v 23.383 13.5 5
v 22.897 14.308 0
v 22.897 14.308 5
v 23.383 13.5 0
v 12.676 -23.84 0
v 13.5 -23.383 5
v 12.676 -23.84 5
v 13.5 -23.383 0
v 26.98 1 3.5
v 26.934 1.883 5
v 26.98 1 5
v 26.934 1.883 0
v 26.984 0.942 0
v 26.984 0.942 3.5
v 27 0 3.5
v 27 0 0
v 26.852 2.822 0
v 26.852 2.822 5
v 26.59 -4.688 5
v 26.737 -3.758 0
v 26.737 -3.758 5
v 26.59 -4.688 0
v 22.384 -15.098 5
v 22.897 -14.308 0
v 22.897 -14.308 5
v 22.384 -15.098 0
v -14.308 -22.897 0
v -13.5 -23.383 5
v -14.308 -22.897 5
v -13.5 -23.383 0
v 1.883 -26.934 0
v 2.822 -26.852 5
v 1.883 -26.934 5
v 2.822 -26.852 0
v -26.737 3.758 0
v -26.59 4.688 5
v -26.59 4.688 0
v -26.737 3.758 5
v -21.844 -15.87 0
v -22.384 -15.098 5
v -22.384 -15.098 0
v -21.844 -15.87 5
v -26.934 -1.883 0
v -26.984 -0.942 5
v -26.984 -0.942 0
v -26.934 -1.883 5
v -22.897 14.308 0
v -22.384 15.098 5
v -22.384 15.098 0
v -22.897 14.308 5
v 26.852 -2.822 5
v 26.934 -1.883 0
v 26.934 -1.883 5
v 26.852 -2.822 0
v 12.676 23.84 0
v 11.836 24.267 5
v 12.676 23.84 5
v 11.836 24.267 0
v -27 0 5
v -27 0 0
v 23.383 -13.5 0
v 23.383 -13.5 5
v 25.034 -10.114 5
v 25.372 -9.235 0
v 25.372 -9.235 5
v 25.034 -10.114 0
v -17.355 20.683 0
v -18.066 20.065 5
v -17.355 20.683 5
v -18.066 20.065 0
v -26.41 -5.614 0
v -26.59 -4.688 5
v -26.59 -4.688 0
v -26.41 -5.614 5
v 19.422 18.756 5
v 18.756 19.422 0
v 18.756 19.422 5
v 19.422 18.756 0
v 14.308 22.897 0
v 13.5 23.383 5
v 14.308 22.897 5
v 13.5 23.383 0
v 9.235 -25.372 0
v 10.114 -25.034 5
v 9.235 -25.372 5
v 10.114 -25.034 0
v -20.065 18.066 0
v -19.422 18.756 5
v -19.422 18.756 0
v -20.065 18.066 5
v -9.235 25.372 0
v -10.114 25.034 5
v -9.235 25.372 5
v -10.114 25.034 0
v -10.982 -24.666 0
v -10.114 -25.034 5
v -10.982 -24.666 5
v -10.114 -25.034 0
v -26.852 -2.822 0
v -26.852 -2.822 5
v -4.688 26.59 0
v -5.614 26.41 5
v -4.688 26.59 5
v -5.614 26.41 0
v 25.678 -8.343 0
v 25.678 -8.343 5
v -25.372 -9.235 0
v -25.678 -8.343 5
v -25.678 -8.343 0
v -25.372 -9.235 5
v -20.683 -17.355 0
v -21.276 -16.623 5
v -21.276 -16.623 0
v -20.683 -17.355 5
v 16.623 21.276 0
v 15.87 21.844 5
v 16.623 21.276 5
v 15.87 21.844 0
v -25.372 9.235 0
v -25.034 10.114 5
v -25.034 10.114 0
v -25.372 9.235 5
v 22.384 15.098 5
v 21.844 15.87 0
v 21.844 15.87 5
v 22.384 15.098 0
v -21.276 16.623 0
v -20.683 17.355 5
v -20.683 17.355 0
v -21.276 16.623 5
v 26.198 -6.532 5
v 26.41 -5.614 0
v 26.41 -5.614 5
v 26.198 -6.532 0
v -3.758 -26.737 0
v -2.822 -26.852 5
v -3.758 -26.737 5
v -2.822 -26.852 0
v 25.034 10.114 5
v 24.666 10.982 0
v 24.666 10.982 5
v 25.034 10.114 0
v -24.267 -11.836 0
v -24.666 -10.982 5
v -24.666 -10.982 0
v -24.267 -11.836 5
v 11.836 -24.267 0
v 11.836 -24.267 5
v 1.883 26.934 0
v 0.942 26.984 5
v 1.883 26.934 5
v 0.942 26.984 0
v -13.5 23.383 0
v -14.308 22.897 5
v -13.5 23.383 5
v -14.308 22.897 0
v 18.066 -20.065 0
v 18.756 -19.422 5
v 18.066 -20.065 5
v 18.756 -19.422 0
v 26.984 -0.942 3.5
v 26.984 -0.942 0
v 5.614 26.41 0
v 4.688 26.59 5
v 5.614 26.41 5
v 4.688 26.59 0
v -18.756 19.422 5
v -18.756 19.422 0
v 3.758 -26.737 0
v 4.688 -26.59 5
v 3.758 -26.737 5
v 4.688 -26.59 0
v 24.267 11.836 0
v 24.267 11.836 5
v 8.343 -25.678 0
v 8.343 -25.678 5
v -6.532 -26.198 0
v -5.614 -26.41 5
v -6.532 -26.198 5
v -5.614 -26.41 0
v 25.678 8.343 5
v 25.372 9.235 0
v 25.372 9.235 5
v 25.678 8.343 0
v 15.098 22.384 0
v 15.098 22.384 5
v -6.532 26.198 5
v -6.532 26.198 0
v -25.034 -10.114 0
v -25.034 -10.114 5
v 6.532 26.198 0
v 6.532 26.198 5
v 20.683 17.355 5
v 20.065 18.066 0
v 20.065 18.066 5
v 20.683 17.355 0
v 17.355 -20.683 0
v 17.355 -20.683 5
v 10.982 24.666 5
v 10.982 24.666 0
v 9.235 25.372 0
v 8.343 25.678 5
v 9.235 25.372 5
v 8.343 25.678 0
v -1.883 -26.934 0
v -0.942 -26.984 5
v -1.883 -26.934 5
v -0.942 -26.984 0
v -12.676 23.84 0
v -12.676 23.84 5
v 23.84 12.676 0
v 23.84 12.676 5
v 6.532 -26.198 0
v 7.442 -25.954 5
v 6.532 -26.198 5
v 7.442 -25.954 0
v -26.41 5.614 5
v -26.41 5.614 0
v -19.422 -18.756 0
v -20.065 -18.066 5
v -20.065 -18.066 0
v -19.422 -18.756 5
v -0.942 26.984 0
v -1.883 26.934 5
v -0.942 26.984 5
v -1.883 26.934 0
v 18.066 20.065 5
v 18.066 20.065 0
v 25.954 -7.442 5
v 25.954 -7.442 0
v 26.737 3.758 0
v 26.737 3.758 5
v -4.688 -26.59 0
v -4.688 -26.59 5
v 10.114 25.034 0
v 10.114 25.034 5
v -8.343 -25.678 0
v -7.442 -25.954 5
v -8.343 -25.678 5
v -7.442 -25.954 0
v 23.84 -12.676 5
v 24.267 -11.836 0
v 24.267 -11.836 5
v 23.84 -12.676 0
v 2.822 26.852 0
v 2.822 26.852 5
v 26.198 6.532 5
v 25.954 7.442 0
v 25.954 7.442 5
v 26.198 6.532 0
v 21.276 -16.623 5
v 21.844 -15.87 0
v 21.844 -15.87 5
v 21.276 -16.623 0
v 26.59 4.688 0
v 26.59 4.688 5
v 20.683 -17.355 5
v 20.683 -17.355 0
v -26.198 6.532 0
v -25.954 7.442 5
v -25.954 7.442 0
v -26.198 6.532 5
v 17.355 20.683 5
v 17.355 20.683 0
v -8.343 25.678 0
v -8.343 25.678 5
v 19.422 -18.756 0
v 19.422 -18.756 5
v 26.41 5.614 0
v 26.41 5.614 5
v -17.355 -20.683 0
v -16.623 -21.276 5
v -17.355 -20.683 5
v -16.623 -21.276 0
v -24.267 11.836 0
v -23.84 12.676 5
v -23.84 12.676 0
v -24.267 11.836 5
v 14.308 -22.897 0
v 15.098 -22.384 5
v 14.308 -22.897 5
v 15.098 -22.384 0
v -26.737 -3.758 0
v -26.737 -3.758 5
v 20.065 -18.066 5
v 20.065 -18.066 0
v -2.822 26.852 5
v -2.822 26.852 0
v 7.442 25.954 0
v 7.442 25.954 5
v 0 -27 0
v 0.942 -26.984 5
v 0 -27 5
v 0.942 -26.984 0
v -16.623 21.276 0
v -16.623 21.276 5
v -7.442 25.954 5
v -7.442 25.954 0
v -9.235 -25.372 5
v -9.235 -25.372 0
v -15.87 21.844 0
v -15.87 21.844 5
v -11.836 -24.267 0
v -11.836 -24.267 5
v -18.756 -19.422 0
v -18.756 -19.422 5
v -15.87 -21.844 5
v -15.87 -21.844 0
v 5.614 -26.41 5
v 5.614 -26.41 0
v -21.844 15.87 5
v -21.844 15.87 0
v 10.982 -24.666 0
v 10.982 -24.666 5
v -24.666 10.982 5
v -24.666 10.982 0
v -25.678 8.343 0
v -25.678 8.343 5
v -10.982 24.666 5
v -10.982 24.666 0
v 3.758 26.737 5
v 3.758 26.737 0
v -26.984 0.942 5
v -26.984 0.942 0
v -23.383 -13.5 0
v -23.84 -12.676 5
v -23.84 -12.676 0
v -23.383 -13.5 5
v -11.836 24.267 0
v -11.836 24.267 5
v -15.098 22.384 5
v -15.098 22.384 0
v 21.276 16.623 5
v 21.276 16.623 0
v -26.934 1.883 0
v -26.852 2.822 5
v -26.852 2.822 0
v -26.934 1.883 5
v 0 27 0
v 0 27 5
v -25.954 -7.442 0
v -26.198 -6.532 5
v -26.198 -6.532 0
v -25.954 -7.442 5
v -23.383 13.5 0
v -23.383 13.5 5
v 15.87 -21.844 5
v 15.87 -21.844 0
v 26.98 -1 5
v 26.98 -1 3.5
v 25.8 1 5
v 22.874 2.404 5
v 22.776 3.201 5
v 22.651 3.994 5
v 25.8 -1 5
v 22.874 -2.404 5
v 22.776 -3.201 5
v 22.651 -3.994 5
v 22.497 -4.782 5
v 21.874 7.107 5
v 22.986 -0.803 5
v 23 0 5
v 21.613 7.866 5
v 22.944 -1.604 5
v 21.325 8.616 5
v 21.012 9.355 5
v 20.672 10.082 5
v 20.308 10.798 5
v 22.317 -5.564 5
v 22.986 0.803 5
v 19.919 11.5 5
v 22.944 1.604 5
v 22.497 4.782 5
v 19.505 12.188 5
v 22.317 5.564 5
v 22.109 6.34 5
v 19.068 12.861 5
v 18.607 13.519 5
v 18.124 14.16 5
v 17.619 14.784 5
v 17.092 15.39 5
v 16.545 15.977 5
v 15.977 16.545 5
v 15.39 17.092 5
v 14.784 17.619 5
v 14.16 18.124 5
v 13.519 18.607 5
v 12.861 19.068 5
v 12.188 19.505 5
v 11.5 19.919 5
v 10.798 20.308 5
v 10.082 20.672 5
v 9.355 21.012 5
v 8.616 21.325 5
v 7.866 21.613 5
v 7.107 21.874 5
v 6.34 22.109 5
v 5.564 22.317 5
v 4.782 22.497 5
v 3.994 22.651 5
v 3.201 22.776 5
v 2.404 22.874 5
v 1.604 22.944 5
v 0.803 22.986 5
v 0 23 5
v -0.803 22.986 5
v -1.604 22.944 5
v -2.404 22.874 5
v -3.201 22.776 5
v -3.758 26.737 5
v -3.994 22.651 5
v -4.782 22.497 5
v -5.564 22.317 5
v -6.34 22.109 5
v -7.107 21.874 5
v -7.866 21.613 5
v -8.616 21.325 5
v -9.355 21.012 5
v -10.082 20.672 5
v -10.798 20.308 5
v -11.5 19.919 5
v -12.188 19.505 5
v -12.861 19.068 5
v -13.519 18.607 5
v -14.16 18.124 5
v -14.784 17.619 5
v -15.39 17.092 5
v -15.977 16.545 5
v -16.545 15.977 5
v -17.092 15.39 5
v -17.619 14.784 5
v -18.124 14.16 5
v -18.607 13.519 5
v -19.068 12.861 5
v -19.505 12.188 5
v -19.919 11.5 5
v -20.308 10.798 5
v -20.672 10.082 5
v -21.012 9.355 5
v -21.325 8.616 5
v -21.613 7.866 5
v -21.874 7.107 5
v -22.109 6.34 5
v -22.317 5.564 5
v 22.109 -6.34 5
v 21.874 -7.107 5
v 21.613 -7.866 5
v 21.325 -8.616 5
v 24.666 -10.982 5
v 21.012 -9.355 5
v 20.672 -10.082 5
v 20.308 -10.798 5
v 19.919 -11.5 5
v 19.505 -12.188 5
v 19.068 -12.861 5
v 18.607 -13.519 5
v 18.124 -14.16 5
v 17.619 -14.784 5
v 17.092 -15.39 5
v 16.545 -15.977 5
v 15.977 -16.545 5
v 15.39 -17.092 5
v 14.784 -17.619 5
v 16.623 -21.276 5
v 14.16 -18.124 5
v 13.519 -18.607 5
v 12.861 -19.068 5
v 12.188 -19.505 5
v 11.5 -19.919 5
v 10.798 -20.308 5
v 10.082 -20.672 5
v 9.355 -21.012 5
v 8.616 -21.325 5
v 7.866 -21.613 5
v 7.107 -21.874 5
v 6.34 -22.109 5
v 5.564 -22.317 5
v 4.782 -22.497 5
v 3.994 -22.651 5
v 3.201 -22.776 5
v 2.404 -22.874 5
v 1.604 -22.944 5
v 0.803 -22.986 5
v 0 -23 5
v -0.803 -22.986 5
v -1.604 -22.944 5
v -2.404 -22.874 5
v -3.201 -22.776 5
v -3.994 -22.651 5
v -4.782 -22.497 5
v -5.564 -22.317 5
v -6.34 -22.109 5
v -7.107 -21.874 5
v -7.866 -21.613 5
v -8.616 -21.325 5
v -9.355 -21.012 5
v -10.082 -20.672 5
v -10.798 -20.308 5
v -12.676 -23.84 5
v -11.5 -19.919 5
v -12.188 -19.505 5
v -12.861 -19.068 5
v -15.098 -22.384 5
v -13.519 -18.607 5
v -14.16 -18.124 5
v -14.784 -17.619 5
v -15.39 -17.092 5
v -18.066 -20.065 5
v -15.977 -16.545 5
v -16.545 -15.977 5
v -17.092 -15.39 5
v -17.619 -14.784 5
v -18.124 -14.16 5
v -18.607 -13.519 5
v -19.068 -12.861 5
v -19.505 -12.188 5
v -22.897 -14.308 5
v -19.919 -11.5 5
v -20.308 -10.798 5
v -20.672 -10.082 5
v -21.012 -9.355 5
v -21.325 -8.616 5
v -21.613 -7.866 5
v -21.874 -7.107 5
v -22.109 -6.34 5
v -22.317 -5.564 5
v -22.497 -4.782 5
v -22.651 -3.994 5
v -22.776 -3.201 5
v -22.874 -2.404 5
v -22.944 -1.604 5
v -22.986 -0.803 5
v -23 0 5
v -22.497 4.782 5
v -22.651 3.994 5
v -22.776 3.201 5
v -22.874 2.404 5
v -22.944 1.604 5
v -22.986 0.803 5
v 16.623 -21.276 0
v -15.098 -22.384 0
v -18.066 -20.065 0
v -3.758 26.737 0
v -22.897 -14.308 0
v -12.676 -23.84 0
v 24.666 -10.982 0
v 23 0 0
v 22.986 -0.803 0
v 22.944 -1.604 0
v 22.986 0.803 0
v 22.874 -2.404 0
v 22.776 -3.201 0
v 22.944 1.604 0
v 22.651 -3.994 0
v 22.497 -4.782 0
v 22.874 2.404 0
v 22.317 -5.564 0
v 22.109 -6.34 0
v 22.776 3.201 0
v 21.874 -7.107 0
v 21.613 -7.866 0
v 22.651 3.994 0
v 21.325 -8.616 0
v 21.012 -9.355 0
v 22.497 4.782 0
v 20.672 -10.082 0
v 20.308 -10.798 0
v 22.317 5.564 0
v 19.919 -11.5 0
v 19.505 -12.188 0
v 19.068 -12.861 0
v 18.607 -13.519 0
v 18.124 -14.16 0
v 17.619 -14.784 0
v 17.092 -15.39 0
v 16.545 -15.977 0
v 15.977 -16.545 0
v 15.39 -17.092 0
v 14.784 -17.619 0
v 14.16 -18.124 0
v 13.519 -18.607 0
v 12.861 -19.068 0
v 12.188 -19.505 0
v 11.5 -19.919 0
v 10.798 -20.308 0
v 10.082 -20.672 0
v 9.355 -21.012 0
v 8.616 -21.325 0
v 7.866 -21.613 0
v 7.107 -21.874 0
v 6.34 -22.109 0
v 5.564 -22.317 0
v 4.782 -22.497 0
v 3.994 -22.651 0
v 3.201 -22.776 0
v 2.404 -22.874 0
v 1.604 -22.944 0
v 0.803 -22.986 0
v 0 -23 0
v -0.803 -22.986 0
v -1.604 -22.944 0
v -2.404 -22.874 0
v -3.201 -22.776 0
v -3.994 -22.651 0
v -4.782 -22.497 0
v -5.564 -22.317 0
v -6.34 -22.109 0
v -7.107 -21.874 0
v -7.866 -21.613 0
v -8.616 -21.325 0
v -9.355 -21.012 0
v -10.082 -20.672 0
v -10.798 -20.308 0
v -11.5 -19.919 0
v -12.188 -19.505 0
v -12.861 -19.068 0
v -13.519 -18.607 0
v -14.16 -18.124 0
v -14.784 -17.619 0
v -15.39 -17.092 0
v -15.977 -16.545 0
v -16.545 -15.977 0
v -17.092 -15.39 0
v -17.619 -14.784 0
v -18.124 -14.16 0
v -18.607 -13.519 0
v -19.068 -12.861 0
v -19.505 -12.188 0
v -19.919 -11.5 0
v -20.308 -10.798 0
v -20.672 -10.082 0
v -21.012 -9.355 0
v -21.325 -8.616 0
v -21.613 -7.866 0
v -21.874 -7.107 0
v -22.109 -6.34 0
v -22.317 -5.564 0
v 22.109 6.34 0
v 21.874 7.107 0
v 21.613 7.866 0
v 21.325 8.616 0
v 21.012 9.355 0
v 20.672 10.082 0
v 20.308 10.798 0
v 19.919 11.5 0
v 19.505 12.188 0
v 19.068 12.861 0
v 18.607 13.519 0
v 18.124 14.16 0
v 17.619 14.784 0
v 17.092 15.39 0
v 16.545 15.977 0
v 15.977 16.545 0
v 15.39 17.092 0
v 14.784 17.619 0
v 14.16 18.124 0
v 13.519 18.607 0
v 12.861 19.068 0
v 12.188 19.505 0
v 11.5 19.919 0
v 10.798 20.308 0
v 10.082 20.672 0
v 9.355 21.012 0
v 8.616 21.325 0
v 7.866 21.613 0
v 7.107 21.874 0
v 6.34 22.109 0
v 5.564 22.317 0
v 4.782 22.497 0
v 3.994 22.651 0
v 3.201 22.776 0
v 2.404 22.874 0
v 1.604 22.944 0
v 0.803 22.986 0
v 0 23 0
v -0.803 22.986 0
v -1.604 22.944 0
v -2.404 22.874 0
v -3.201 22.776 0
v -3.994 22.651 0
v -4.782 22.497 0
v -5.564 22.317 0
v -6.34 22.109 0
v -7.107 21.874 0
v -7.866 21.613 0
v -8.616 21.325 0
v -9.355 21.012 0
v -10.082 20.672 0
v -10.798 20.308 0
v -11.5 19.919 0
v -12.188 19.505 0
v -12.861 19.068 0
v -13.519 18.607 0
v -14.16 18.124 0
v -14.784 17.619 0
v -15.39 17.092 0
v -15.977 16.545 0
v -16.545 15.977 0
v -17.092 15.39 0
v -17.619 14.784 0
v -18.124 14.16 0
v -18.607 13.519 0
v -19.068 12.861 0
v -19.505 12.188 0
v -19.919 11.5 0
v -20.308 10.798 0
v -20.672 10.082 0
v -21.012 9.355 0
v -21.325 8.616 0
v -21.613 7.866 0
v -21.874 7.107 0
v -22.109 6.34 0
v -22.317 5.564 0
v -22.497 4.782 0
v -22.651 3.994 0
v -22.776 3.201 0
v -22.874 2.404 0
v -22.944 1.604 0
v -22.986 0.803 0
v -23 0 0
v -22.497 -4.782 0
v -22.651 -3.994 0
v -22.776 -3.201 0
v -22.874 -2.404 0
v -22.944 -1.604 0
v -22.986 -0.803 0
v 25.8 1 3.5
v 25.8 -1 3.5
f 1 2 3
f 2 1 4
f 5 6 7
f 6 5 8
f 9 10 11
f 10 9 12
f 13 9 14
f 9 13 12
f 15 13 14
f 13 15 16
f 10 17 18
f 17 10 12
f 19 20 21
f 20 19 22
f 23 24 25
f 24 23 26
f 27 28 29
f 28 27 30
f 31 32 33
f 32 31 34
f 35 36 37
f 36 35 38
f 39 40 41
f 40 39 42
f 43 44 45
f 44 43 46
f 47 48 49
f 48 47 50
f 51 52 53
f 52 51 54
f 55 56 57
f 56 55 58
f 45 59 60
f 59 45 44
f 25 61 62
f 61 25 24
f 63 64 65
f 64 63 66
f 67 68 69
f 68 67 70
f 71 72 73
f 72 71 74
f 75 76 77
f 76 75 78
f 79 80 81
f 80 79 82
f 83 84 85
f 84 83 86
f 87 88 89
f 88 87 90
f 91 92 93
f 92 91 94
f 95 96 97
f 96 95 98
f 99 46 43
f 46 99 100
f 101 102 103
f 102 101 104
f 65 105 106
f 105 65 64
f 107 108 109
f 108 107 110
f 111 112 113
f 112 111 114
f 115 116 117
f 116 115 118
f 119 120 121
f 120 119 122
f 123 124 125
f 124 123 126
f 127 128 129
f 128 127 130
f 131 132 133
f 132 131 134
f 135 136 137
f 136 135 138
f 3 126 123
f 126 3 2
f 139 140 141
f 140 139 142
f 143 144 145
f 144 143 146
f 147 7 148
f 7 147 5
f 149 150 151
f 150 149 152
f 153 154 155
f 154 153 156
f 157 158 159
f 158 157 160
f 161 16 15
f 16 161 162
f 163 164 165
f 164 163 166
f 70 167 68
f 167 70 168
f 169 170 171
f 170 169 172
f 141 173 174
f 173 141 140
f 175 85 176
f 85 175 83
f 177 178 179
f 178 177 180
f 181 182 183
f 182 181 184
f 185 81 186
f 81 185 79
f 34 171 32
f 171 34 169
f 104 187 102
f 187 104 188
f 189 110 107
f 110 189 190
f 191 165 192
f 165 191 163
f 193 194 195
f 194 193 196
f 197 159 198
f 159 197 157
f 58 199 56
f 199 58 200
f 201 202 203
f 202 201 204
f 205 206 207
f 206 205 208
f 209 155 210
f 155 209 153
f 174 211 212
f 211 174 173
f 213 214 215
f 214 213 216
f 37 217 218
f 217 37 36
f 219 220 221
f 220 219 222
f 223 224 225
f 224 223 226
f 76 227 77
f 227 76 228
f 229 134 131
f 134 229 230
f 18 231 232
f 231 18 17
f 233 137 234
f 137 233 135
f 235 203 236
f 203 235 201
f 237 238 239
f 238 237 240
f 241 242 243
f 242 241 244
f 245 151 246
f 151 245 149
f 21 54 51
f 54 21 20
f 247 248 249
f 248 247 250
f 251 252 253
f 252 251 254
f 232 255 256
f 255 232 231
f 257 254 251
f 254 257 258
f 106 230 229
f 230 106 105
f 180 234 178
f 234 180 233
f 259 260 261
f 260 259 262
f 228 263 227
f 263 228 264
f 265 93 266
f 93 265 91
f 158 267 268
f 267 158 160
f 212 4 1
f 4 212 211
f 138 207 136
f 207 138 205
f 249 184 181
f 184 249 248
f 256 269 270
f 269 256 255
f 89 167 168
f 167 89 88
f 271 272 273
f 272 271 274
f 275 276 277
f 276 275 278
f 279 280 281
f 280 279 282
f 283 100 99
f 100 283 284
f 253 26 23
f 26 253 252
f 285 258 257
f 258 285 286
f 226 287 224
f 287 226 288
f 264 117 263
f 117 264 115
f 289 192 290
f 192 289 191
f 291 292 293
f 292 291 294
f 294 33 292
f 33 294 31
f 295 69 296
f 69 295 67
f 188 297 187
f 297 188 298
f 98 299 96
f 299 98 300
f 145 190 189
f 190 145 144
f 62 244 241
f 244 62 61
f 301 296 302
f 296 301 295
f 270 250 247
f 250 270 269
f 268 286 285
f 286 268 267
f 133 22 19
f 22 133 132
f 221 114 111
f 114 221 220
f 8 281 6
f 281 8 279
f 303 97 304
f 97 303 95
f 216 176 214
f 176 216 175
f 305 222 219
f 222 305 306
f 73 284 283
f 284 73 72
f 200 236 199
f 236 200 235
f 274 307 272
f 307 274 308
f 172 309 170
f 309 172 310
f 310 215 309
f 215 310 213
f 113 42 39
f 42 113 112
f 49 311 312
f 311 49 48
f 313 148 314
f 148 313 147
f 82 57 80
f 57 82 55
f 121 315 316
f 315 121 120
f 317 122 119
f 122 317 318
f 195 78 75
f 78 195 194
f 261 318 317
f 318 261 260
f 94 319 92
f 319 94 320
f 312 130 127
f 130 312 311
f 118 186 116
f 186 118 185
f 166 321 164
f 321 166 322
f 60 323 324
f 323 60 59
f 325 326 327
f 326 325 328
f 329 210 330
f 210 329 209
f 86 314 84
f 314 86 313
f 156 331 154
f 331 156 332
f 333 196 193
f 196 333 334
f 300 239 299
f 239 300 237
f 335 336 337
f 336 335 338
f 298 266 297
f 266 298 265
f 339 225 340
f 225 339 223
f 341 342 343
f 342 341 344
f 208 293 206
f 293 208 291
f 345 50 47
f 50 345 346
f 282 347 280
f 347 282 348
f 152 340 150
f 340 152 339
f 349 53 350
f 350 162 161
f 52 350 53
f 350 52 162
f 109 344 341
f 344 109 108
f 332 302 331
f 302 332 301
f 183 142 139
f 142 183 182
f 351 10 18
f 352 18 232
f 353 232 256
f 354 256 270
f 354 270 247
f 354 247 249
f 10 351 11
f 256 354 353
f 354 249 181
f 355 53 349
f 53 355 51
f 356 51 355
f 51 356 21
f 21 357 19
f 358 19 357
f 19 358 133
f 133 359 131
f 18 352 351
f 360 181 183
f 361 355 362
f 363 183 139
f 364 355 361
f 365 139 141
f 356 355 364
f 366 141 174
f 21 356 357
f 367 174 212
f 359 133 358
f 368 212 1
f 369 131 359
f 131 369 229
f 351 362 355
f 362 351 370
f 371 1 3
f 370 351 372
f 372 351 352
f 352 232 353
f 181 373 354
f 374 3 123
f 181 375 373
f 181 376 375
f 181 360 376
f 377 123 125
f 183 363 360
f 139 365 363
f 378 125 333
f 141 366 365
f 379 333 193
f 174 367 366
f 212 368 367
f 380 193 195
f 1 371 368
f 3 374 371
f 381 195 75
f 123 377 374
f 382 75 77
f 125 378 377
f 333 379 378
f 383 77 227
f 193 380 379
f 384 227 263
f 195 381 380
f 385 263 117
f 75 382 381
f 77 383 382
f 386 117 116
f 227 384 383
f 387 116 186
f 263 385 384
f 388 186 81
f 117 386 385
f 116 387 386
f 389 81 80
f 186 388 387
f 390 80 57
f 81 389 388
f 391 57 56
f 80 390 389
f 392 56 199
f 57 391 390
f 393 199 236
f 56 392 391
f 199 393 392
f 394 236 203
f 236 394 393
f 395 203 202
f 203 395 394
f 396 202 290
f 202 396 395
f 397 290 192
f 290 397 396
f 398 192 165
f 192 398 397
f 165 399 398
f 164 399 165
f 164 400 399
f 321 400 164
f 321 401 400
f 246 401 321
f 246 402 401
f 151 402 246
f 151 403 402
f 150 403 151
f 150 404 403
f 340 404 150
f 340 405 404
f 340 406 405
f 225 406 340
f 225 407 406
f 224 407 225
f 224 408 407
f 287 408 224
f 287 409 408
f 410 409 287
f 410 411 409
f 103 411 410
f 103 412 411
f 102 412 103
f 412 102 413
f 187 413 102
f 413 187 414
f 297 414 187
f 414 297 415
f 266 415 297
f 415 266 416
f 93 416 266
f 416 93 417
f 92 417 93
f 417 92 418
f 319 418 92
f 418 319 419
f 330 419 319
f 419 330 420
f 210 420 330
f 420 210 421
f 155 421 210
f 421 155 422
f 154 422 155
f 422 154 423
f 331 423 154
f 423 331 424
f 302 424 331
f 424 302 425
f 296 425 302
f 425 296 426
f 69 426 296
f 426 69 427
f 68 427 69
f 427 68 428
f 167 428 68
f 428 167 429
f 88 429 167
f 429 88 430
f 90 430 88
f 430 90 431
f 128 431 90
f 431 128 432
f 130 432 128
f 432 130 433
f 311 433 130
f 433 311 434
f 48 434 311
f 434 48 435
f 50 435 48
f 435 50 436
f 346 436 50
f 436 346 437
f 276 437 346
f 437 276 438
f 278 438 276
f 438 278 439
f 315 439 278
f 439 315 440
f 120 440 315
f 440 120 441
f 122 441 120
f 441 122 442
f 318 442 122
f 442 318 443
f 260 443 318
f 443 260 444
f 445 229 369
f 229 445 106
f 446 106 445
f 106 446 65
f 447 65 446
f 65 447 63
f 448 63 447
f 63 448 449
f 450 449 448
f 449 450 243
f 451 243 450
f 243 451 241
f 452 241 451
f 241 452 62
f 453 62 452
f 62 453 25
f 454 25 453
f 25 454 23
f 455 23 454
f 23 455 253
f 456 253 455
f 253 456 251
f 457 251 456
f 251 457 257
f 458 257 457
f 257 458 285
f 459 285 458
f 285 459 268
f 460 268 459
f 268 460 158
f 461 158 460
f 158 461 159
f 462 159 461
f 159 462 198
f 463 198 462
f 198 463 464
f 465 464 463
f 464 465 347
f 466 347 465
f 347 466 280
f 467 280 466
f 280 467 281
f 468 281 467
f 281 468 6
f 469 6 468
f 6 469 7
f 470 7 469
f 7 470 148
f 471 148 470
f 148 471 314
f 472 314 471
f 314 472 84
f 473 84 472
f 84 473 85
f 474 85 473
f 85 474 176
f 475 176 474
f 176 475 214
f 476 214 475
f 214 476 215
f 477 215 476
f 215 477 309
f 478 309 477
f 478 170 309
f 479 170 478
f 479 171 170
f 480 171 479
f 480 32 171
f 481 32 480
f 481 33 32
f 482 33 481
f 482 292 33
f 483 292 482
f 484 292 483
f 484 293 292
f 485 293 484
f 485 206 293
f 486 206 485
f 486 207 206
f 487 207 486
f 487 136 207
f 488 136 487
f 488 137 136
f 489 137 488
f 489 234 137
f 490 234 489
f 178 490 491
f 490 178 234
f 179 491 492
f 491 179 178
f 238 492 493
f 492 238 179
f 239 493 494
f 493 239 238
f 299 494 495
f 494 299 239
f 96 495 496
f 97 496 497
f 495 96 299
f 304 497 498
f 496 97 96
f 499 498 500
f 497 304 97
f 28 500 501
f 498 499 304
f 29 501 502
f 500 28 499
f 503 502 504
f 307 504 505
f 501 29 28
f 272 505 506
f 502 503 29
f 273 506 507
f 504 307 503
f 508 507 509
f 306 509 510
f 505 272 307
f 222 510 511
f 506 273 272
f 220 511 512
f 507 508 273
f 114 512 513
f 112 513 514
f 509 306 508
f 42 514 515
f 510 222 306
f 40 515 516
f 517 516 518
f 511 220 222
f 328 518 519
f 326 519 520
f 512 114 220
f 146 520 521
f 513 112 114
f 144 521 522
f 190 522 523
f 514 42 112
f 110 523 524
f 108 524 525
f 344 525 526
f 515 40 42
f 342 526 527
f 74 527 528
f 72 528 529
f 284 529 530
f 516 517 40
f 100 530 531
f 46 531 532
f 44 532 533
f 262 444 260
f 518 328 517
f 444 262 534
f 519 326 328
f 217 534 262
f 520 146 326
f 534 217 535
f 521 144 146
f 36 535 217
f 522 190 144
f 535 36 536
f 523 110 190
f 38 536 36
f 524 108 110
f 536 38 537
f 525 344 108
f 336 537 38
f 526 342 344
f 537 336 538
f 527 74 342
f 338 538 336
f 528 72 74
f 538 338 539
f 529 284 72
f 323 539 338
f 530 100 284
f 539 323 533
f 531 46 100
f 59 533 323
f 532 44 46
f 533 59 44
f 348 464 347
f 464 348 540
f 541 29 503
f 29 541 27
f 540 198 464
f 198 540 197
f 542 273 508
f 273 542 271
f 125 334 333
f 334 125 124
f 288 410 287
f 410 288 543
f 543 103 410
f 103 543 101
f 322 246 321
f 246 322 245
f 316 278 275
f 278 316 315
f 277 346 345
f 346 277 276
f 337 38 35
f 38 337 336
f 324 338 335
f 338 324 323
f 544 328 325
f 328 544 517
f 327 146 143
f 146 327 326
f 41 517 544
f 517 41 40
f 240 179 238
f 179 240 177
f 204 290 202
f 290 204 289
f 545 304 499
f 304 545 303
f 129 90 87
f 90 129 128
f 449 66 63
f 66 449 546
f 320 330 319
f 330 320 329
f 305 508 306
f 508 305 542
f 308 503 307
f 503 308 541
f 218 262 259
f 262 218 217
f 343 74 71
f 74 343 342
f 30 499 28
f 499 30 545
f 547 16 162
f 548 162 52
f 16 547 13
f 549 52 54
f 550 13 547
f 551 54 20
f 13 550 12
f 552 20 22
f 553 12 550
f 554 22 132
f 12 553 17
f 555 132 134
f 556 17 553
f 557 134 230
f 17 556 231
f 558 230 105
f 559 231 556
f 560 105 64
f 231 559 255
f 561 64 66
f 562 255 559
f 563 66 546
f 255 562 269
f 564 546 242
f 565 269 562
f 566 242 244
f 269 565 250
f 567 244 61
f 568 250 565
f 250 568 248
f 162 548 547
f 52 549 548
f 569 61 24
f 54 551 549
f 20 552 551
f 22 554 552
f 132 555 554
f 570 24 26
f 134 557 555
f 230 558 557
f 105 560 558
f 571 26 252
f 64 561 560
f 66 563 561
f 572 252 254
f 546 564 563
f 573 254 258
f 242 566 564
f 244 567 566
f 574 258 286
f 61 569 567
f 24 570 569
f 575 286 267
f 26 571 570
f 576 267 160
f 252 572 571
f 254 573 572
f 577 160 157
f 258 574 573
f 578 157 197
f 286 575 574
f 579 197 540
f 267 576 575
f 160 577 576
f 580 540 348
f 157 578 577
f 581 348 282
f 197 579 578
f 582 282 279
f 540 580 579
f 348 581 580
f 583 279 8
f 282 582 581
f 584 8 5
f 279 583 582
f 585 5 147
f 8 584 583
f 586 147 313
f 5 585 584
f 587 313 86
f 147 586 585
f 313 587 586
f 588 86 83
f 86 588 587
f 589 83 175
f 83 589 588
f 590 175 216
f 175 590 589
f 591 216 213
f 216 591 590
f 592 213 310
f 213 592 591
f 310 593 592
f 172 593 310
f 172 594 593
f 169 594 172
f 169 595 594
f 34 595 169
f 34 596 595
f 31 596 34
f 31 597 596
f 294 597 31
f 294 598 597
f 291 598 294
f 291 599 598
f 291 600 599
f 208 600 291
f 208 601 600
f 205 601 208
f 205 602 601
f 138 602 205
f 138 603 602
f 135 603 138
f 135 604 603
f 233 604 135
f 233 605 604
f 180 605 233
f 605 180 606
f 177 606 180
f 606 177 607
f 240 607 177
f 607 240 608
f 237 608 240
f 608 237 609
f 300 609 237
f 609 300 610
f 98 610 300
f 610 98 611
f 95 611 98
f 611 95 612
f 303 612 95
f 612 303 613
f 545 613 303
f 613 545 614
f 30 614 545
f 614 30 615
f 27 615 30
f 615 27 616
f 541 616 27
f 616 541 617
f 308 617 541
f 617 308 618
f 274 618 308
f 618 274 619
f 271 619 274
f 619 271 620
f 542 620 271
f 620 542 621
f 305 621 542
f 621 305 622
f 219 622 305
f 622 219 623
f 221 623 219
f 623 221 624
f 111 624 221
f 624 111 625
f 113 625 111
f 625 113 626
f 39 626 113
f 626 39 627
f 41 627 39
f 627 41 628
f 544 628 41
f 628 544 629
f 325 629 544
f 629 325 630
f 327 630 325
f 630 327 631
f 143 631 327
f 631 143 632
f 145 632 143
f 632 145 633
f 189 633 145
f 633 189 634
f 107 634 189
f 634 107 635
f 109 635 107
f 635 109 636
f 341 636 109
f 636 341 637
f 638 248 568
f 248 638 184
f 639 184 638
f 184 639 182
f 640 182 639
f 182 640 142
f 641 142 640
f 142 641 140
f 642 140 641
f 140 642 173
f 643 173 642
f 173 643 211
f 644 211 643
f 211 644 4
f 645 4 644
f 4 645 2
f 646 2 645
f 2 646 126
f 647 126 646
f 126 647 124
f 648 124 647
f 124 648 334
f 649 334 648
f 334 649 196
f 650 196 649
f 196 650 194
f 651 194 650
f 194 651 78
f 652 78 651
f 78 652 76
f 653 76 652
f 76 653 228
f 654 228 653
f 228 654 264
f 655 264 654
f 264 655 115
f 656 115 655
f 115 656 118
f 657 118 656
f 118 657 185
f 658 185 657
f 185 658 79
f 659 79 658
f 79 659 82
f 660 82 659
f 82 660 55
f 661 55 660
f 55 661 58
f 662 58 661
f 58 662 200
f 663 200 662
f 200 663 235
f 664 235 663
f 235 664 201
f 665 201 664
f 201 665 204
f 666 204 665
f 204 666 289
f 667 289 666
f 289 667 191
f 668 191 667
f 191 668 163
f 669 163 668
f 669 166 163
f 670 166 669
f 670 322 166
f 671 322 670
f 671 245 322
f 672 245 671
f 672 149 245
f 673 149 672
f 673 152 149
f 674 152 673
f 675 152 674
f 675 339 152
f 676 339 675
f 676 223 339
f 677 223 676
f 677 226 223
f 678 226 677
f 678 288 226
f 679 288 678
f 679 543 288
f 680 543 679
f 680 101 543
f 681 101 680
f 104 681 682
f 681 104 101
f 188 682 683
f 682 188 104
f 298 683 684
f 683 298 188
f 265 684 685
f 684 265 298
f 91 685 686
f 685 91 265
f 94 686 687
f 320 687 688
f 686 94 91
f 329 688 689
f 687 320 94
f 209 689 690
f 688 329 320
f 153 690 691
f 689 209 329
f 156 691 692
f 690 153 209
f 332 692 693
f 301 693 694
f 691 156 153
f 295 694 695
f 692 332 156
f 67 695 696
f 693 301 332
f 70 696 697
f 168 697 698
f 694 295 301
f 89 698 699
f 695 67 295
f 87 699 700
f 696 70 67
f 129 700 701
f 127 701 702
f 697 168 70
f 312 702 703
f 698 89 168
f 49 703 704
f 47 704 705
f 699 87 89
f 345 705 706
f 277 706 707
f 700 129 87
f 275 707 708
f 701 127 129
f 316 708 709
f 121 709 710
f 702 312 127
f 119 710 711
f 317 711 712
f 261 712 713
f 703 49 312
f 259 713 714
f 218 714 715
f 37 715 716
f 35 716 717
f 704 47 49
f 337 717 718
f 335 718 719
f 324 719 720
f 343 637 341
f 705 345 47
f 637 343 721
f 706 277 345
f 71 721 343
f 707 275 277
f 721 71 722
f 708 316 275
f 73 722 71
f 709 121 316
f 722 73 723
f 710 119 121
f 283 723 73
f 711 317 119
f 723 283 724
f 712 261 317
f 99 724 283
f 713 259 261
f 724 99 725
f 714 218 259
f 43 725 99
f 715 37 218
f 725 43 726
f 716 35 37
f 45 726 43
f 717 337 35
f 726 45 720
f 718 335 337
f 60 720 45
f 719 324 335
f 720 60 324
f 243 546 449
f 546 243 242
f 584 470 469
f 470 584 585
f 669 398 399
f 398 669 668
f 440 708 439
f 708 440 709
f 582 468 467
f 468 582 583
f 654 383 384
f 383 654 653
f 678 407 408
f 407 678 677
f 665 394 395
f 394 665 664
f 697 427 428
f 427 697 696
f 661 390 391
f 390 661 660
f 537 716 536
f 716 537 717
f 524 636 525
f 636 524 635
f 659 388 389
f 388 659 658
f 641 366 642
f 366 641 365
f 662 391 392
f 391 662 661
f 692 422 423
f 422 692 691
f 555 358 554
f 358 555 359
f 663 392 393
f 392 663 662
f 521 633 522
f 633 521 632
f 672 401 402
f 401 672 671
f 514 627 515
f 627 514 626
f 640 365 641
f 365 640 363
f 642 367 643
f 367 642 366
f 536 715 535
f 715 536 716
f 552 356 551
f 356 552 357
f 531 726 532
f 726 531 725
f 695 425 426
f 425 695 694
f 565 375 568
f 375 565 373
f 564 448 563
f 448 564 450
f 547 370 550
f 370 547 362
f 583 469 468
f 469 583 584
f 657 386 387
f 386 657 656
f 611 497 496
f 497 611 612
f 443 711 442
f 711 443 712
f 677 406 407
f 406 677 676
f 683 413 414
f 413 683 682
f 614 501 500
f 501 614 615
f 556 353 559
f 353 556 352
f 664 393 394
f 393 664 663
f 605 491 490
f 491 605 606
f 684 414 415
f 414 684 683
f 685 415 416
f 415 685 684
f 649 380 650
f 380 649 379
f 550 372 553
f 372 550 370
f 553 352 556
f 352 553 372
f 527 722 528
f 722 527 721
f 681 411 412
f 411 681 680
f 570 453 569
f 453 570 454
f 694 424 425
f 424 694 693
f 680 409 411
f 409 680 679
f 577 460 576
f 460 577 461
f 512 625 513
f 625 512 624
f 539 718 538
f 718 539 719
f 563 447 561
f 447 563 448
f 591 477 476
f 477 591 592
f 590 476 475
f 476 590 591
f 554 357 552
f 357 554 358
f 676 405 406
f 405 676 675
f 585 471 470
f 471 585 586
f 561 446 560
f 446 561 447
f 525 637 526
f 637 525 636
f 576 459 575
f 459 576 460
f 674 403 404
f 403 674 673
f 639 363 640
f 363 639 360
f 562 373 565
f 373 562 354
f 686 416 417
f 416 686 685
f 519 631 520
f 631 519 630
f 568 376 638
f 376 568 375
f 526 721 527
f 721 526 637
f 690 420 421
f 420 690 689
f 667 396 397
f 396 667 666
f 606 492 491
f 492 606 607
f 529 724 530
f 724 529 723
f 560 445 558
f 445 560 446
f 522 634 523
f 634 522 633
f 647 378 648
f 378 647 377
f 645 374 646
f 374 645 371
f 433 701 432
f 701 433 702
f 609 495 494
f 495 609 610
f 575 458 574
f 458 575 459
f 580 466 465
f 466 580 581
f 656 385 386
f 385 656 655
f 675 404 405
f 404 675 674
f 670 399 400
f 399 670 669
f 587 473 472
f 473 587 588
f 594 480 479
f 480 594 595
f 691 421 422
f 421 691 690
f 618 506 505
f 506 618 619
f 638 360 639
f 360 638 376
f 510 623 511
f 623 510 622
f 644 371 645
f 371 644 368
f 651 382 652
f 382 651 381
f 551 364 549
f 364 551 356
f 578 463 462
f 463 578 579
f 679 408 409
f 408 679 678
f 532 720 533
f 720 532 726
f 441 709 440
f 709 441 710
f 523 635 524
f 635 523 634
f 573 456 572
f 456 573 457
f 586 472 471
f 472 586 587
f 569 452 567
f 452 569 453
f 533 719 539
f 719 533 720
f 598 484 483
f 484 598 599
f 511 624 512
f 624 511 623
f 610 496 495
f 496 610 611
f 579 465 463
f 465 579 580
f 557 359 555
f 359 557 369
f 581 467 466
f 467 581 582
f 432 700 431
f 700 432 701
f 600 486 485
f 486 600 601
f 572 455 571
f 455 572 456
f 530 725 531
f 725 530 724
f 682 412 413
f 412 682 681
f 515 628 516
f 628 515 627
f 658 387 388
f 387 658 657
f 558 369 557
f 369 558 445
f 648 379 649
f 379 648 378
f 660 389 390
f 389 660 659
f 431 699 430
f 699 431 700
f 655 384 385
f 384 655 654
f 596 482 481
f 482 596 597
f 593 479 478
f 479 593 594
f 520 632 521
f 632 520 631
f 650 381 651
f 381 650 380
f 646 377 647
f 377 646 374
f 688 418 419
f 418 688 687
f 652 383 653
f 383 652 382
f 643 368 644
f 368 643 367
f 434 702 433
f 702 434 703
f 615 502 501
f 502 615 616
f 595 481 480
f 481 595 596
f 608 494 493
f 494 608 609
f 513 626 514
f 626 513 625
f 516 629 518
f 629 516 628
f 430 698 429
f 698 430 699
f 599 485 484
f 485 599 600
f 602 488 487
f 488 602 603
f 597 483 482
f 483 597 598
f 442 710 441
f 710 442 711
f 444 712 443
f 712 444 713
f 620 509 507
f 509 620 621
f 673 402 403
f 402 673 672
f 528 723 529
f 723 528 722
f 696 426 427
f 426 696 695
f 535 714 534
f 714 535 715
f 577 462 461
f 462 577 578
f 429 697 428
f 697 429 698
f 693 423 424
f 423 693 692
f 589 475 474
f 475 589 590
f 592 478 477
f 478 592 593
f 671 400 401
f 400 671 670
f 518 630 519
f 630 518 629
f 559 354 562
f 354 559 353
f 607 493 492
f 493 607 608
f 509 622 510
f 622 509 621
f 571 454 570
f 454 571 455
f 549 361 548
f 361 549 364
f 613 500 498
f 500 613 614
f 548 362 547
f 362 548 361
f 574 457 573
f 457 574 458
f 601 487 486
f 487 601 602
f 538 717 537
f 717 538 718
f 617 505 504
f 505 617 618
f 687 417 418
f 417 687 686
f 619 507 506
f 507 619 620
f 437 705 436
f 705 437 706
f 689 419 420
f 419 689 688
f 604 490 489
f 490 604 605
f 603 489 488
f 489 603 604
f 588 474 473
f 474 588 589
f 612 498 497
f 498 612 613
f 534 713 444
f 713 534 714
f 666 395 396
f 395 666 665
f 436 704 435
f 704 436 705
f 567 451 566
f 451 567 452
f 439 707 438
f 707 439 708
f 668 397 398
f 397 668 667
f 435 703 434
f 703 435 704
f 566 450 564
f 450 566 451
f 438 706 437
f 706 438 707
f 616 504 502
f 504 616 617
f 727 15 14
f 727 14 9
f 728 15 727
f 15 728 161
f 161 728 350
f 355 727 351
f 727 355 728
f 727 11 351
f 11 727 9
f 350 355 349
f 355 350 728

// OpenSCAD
// Test rings to find the right hole size for the 45 mm pole.
// One 46 mm ring (one notch on the outside edge).
// Print in PLA, 0.2 mm layers, no supports. Slide it onto the pole:
// it should slide on easily without wobbling.

holes  = [46.0];             // inner diameter, mm
wall   = 4;                  // ring wall thickness, mm
height = 5;                  // ring height, mm
gap    = 8;                  // space between rings, mm
$fn    = 180;

module ring(d, notches) {
  difference() {
    cylinder(h = height, d = d + 2 * wall);
    translate([0, 0, -1]) cylinder(h = height + 2, d = d);
    // Notches on the outside edge to tell the rings apart.
    for (i = [0 : notches - 1])
      rotate([0, 0, i * 12])
        translate([d / 2 + wall - 1.2, -1, height - 1.5]) cube([2, 2, 2]);
  }
}

for (i = [0 : len(holes) - 1])
  translate([i * (holes[i] + 2 * wall + gap), 0, 0]) ring(holes[i], i + 1);
